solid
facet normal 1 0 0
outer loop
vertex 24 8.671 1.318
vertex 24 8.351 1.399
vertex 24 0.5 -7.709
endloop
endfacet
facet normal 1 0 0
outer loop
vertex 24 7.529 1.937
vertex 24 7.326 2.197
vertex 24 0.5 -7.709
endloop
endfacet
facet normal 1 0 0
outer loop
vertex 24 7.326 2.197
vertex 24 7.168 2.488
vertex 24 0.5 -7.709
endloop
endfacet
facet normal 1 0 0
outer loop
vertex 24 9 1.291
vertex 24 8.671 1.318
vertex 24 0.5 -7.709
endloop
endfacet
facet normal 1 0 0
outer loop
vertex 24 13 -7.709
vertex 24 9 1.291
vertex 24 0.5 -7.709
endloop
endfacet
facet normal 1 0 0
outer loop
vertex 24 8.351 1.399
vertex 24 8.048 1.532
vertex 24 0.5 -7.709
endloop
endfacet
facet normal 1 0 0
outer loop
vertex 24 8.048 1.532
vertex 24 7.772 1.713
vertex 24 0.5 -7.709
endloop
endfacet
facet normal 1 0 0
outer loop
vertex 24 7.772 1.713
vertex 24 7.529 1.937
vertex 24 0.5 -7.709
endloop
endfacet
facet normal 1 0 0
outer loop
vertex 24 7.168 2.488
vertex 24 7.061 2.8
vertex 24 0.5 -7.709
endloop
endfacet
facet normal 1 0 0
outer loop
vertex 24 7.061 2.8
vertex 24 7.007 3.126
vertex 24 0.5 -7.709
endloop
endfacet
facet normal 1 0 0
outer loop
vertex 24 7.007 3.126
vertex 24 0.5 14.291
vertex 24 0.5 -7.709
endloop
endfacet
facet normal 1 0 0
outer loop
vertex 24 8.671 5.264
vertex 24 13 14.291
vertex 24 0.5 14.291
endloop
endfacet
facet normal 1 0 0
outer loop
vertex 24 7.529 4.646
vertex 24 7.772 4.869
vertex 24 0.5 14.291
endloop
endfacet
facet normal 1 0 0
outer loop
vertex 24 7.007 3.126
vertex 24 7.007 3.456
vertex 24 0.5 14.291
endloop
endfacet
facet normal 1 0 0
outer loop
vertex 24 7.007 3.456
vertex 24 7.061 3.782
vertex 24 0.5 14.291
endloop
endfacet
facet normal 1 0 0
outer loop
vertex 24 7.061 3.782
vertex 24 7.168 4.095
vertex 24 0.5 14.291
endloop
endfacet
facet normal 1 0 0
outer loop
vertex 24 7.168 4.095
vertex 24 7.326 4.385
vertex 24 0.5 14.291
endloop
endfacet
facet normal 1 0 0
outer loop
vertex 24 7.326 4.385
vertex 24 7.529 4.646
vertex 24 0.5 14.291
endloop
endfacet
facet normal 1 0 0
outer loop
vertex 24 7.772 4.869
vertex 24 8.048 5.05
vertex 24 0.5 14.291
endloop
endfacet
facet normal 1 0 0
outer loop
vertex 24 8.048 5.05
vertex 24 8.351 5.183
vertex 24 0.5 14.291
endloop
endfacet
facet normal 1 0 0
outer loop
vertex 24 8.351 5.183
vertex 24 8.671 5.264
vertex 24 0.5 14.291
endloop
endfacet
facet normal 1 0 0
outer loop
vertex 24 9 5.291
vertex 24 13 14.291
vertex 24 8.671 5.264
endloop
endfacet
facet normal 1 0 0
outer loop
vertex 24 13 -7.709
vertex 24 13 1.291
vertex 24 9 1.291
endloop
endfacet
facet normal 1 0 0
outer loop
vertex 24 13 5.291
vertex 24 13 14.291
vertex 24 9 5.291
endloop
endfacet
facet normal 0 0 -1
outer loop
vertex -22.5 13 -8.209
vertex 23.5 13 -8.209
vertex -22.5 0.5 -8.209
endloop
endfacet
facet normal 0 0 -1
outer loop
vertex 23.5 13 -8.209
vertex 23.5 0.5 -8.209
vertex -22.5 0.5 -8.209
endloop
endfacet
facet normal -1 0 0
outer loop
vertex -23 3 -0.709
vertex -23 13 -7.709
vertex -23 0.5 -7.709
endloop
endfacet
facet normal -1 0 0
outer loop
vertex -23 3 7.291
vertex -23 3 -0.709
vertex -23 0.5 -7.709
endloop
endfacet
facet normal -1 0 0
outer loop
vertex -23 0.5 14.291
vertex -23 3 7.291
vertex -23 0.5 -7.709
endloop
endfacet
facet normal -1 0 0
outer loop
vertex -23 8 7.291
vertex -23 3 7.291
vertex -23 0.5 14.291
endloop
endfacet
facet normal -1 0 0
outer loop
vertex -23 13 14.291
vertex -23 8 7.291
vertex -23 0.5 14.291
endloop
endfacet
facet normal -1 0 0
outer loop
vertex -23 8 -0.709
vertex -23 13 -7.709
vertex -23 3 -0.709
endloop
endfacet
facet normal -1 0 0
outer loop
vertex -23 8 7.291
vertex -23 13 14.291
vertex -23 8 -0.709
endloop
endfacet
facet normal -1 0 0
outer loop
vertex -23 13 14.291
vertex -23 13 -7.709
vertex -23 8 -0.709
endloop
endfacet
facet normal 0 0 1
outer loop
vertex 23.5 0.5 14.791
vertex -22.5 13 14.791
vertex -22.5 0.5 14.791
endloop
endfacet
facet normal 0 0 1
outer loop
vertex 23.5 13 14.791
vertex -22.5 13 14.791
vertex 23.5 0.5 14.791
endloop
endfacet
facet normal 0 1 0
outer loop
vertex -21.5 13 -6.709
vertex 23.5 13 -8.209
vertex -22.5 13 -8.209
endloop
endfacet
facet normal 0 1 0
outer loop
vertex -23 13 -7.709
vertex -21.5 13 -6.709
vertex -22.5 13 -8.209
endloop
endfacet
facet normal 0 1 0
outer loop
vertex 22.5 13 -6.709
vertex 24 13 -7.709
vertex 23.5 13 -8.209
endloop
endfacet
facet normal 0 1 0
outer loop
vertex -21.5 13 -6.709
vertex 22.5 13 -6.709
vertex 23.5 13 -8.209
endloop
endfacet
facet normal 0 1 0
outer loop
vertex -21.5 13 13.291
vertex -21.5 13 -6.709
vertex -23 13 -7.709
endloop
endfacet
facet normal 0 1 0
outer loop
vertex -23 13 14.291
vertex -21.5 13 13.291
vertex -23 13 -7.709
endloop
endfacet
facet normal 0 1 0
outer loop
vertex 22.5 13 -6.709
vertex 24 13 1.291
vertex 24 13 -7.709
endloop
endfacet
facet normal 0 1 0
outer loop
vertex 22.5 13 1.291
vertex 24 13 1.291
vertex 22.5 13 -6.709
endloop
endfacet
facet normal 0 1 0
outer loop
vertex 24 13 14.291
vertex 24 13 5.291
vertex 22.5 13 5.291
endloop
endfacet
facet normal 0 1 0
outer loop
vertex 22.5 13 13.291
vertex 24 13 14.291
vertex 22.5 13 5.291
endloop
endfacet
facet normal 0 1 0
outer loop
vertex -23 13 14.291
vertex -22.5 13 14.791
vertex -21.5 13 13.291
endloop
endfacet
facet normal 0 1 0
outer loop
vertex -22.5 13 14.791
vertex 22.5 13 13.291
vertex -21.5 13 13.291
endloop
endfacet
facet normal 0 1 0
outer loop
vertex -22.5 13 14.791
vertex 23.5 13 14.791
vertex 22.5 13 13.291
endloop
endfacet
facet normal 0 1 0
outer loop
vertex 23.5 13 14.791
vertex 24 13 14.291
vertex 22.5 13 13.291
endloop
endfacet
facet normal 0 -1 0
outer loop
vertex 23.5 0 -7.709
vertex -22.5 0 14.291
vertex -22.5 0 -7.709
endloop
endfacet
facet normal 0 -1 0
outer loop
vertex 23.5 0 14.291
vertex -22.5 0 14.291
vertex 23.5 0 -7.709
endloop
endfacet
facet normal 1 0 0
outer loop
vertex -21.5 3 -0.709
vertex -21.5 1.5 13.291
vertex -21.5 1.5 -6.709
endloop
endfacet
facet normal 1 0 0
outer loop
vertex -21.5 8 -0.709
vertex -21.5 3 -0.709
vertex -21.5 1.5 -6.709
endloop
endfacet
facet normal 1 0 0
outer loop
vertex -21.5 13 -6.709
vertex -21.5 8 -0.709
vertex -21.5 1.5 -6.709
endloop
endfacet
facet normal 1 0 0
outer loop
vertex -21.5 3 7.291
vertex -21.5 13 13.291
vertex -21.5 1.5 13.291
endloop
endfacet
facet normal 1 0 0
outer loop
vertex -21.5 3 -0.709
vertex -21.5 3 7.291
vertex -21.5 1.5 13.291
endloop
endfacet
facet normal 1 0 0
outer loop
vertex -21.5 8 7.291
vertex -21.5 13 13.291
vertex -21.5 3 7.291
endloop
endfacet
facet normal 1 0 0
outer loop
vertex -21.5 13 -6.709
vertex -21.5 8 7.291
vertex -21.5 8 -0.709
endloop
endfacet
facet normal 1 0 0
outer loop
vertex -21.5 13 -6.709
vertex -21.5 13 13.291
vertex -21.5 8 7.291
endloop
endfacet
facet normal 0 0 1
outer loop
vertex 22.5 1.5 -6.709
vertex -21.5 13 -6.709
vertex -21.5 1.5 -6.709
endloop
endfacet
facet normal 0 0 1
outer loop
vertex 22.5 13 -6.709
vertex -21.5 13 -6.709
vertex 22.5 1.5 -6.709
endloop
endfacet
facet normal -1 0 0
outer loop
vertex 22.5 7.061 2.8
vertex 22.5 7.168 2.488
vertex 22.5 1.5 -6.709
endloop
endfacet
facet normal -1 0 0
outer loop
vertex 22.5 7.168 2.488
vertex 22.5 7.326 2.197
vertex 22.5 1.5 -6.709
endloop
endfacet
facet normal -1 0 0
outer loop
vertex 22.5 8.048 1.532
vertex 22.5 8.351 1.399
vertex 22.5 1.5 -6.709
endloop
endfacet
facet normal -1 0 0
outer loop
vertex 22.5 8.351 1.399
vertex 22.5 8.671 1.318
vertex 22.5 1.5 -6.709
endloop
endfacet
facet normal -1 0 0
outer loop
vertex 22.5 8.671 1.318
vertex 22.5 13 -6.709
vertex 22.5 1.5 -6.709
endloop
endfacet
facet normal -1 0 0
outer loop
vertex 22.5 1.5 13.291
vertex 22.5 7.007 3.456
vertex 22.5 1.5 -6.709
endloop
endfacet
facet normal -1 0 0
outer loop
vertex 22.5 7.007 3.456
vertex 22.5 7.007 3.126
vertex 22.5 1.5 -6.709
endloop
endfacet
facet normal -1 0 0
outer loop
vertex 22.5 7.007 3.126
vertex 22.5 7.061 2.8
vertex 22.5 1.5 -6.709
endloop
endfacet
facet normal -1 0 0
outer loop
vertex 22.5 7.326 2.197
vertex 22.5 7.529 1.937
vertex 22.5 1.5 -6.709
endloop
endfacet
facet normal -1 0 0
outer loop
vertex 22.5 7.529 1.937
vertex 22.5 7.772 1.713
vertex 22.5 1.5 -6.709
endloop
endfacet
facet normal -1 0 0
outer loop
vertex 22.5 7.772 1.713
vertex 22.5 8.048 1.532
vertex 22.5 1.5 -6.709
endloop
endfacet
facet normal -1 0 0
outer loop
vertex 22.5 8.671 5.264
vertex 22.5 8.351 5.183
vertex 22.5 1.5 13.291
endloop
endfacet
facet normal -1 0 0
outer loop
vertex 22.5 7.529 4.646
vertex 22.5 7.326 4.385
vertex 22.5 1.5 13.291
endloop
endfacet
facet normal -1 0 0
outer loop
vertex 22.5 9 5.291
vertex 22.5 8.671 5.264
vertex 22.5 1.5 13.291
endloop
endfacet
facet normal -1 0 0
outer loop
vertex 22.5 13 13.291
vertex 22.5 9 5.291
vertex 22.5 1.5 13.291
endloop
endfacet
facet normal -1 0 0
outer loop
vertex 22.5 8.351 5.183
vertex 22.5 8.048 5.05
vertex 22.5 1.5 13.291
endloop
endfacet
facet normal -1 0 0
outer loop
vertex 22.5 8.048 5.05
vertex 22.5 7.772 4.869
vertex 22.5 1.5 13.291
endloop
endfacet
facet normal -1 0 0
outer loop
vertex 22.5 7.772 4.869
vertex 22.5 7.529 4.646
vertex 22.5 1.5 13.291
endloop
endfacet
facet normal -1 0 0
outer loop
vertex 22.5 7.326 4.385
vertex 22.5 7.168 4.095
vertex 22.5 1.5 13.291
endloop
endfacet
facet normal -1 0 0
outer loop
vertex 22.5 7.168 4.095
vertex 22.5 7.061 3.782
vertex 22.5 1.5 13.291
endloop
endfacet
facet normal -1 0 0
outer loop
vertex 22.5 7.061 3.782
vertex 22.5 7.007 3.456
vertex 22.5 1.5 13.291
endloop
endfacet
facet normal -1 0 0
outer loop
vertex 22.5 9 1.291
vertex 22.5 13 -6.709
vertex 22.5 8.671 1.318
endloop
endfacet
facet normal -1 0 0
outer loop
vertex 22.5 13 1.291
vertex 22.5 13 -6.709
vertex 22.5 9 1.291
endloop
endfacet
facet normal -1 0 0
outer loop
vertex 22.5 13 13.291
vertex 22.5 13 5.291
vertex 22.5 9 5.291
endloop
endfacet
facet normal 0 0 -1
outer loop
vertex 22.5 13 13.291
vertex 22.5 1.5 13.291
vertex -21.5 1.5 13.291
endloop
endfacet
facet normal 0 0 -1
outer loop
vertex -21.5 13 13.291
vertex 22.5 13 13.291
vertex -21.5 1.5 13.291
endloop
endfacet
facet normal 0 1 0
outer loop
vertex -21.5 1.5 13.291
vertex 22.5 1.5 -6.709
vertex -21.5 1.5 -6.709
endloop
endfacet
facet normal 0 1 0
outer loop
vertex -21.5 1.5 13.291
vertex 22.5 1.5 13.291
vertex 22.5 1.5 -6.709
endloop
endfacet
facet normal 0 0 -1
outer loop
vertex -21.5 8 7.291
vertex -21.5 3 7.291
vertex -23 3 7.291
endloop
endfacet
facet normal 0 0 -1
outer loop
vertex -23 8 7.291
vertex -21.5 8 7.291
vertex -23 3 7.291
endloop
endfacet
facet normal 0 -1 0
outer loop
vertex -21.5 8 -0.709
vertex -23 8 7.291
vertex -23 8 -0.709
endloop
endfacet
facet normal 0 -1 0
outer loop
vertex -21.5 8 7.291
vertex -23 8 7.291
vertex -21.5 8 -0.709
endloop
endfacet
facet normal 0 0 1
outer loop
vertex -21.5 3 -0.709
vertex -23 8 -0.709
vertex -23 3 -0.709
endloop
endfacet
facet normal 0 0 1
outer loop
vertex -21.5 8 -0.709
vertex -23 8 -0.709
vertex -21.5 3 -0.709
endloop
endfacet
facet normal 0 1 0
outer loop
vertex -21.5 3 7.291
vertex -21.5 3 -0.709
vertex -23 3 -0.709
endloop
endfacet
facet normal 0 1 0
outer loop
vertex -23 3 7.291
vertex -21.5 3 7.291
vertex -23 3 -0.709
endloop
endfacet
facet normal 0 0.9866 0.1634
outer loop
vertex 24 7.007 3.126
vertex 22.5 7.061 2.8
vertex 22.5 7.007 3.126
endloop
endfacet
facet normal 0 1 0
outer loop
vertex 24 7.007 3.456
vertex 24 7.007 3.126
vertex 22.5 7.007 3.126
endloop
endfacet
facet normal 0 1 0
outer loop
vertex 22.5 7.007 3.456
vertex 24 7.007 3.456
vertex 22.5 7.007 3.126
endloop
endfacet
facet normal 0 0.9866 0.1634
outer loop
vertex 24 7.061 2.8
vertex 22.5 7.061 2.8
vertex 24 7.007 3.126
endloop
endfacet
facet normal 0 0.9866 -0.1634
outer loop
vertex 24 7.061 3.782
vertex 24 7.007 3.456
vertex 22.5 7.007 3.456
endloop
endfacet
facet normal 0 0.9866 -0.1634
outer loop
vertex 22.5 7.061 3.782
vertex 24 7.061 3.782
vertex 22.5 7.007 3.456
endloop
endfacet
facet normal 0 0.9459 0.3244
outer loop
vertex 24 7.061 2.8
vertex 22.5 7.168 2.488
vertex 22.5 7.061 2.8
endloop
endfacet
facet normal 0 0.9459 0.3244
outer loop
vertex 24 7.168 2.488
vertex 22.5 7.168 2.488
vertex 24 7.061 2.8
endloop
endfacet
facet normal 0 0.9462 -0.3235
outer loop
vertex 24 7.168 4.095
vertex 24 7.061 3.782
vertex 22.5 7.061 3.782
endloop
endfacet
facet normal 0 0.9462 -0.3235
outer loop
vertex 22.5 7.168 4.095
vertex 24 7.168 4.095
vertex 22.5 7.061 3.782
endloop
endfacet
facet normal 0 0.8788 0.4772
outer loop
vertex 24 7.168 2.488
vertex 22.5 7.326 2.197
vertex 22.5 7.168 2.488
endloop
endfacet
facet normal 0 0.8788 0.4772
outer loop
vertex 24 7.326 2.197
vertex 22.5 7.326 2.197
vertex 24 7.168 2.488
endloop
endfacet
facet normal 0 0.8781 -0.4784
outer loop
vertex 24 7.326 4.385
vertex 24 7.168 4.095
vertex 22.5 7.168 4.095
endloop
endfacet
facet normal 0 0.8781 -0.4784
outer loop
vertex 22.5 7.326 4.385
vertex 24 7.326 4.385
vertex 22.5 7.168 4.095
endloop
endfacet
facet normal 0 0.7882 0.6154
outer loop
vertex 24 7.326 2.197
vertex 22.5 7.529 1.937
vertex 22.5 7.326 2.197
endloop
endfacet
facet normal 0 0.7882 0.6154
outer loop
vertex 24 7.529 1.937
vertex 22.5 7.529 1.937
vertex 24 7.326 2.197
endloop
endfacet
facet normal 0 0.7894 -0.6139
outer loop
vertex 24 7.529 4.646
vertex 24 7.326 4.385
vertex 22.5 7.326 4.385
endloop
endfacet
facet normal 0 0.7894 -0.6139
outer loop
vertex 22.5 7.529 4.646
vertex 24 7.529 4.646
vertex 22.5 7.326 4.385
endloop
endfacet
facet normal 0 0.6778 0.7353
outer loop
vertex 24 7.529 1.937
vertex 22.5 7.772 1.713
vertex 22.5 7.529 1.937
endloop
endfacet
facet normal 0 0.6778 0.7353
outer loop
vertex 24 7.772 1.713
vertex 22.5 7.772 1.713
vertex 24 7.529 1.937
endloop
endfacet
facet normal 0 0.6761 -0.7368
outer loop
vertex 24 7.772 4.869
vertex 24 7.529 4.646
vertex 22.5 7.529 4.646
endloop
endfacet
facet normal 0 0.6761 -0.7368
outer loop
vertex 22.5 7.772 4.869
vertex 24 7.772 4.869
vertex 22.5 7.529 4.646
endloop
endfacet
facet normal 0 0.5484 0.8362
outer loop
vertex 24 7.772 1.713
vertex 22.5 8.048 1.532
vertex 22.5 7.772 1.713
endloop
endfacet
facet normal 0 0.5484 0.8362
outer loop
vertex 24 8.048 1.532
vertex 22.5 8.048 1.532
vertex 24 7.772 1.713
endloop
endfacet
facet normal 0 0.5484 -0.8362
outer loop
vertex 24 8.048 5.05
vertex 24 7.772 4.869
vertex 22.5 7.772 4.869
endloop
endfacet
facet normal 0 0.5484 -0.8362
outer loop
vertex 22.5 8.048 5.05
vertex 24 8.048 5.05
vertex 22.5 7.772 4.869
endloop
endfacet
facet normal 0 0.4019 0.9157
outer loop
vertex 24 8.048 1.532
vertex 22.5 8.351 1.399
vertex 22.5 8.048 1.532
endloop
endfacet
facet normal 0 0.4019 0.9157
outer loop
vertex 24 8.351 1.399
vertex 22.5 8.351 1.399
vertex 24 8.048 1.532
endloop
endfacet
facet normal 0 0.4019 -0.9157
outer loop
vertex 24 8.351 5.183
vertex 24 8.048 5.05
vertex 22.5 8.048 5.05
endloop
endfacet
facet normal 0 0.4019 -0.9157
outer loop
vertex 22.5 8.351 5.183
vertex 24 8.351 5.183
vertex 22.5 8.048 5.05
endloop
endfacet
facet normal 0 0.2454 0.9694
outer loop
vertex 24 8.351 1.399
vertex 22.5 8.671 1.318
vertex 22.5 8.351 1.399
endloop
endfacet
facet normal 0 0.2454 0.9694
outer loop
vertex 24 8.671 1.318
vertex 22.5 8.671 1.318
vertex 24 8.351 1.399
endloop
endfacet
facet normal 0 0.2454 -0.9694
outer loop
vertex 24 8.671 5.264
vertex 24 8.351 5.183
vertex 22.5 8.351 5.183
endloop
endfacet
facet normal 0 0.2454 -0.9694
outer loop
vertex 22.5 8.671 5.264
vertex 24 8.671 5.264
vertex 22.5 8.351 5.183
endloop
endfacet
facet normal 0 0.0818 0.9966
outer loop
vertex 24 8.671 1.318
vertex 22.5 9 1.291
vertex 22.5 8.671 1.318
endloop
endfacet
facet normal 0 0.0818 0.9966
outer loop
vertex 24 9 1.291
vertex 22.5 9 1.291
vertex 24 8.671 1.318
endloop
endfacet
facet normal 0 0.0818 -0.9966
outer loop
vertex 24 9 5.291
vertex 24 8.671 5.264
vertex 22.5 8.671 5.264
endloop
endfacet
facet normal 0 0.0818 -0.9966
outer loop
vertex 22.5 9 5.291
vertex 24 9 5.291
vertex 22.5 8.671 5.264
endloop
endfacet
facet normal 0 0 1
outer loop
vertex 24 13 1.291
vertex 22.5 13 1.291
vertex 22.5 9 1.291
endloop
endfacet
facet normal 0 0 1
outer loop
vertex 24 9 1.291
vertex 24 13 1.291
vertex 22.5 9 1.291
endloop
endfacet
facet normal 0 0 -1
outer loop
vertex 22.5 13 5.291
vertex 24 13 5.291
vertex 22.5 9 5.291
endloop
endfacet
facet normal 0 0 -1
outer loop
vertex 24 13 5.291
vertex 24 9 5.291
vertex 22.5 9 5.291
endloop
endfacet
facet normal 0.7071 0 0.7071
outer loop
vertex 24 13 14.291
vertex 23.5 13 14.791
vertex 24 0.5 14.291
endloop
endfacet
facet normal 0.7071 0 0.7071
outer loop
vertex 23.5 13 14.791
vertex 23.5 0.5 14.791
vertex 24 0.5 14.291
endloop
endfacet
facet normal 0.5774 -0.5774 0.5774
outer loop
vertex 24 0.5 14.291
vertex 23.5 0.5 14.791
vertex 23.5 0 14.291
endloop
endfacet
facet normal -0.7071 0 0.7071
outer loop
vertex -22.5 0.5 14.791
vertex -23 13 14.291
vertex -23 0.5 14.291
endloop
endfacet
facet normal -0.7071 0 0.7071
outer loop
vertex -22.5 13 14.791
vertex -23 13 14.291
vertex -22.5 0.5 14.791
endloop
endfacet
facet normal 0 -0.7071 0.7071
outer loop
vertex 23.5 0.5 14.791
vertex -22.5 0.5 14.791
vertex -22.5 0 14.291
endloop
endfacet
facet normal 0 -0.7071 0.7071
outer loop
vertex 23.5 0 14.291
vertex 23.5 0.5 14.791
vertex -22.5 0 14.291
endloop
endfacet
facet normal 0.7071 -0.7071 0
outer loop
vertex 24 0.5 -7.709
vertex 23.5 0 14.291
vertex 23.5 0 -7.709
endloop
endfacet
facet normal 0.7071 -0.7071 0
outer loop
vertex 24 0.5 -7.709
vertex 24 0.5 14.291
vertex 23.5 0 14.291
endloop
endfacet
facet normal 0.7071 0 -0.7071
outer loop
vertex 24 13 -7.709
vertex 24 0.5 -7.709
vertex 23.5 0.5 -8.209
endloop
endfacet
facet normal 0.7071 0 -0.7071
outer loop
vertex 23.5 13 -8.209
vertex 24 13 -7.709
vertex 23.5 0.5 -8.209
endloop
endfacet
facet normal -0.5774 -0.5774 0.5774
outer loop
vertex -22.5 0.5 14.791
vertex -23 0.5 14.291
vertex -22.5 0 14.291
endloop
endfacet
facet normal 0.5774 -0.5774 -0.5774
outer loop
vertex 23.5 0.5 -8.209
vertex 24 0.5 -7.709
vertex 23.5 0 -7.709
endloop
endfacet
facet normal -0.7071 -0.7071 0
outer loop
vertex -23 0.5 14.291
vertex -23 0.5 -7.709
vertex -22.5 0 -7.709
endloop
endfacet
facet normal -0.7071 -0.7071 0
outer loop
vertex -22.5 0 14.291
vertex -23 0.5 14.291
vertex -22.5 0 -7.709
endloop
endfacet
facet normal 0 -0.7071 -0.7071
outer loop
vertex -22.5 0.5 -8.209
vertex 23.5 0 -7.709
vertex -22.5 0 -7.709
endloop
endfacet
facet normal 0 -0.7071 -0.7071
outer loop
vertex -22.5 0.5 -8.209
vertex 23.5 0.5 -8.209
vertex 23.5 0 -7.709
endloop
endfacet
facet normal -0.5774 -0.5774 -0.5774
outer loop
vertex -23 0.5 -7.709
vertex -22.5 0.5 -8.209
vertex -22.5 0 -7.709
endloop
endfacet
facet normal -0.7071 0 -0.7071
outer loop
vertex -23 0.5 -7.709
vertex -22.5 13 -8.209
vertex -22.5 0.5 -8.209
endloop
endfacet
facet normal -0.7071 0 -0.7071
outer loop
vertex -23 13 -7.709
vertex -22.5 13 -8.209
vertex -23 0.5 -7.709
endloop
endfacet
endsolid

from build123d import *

# Parameters (mm, degrees)
SKETCH1_W           = 47
SKETCH1_H           = 23
SKETCH1_W_2         = 44
SKETCH1_H_2         = 20
BOSS_EXTRUDE1_DEPTH = 13
SKETCH2_W           = 44
SKETCH2_H           = 20
CUT_EXTRUDE1_DEPTH  = 11.5
SKETCH3_W           = 8
SKETCH3_H           = 5
CUT_EXTRUDE2_DEPTH  = 11.5
CUT_EXTRUDE3_DEPTH  = 11.5
CHAMFER1_SIZE       = 0.5


with BuildPart() as part:
    # Sketch1 → Boss-Extrude1 (new body)
    with BuildSketch(Plane(origin=(0, 0, 0), x_dir=(1, 0, 0), z_dir=(0, 1, 0))):
        with Locations((0.5, -3.291122715)):
            Rectangle(SKETCH1_W, SKETCH1_H)
        with Locations((0.5, -3.291122715)):
            Rectangle(SKETCH1_W_2, SKETCH1_H_2, mode=Mode.SUBTRACT)
        with Locations((0.5, -3.291122715)):
            Rectangle(SKETCH1_W_2, SKETCH1_H_2)
    extrude(amount=BOSS_EXTRUDE1_DEPTH)

    # Sketch2 → Cut-Extrude1 (cut)
    with BuildSketch(Plane(origin=(0, 13, 0), x_dir=(1, 0, 0), z_dir=(0, 1, 0))):
        with Locations((0.5, -3.291122715)):
            Rectangle(SKETCH2_W, SKETCH2_H)
    extrude(amount=-CUT_EXTRUDE1_DEPTH, mode=Mode.SUBTRACT)

    # Sketch3 → Cut-Extrude2 (cut)
    with BuildSketch(Plane(origin=(-21.5, 0, 0), x_dir=(0, 0, -1), z_dir=(1, 0, 0))):
        with Locations((-3.291122715, 5.5)):
            Rectangle(SKETCH3_W, SKETCH3_H)
    extrude(amount=-CUT_EXTRUDE2_DEPTH, mode=Mode.SUBTRACT)

    # Sketch4 → Cut-Extrude3 (cut)
    with BuildSketch(Plane.ZY.offset(-22.5)):
        with BuildLine():
            ThreePointArc((5.291122715, 9), (3.291122715, 11), (1.291122715, 9))
            Line((1.291122715, 9), (5.291122715, 9))
        make_face()
        with BuildLine():
            Line((5.291122715, 9), (1.291122715, 9))
            ThreePointArc((1.291122715, 9), (3.291122715, 7), (5.291122715, 9))
        make_face()
        with BuildLine():
            Line((5.291122715, 13), (1.291122715, 13))
            Line((1.291122715, 13), (1.291122715, 9))
            ThreePointArc((1.291122715, 9), (3.291122715, 11), (5.291122715, 9))
            Line((5.291122715, 9), (5.291122715, 13))
        make_face()
    extrude(amount=-CUT_EXTRUDE3_DEPTH, mode=Mode.SUBTRACT)

    # Chamfer1
    chamfer1_edges = [part.edges().sort_by_distance(p)[0] for p in [
        (0.5, 0, 14.791122715),
        (-23, 0, 3.291122715),
        (0.5, 0, -8.208877285),
        (24, 0, 3.291122715),
        (24, 6.5, 14.791122715),
        (-23, 6.5, 14.791122715),
        (-23, 6.5, -8.208877285),
        (24, 6.5, -8.208877285),
    ]]
    chamfer(chamfer1_edges, length=CHAMFER1_SIZE)


solid = part.part
